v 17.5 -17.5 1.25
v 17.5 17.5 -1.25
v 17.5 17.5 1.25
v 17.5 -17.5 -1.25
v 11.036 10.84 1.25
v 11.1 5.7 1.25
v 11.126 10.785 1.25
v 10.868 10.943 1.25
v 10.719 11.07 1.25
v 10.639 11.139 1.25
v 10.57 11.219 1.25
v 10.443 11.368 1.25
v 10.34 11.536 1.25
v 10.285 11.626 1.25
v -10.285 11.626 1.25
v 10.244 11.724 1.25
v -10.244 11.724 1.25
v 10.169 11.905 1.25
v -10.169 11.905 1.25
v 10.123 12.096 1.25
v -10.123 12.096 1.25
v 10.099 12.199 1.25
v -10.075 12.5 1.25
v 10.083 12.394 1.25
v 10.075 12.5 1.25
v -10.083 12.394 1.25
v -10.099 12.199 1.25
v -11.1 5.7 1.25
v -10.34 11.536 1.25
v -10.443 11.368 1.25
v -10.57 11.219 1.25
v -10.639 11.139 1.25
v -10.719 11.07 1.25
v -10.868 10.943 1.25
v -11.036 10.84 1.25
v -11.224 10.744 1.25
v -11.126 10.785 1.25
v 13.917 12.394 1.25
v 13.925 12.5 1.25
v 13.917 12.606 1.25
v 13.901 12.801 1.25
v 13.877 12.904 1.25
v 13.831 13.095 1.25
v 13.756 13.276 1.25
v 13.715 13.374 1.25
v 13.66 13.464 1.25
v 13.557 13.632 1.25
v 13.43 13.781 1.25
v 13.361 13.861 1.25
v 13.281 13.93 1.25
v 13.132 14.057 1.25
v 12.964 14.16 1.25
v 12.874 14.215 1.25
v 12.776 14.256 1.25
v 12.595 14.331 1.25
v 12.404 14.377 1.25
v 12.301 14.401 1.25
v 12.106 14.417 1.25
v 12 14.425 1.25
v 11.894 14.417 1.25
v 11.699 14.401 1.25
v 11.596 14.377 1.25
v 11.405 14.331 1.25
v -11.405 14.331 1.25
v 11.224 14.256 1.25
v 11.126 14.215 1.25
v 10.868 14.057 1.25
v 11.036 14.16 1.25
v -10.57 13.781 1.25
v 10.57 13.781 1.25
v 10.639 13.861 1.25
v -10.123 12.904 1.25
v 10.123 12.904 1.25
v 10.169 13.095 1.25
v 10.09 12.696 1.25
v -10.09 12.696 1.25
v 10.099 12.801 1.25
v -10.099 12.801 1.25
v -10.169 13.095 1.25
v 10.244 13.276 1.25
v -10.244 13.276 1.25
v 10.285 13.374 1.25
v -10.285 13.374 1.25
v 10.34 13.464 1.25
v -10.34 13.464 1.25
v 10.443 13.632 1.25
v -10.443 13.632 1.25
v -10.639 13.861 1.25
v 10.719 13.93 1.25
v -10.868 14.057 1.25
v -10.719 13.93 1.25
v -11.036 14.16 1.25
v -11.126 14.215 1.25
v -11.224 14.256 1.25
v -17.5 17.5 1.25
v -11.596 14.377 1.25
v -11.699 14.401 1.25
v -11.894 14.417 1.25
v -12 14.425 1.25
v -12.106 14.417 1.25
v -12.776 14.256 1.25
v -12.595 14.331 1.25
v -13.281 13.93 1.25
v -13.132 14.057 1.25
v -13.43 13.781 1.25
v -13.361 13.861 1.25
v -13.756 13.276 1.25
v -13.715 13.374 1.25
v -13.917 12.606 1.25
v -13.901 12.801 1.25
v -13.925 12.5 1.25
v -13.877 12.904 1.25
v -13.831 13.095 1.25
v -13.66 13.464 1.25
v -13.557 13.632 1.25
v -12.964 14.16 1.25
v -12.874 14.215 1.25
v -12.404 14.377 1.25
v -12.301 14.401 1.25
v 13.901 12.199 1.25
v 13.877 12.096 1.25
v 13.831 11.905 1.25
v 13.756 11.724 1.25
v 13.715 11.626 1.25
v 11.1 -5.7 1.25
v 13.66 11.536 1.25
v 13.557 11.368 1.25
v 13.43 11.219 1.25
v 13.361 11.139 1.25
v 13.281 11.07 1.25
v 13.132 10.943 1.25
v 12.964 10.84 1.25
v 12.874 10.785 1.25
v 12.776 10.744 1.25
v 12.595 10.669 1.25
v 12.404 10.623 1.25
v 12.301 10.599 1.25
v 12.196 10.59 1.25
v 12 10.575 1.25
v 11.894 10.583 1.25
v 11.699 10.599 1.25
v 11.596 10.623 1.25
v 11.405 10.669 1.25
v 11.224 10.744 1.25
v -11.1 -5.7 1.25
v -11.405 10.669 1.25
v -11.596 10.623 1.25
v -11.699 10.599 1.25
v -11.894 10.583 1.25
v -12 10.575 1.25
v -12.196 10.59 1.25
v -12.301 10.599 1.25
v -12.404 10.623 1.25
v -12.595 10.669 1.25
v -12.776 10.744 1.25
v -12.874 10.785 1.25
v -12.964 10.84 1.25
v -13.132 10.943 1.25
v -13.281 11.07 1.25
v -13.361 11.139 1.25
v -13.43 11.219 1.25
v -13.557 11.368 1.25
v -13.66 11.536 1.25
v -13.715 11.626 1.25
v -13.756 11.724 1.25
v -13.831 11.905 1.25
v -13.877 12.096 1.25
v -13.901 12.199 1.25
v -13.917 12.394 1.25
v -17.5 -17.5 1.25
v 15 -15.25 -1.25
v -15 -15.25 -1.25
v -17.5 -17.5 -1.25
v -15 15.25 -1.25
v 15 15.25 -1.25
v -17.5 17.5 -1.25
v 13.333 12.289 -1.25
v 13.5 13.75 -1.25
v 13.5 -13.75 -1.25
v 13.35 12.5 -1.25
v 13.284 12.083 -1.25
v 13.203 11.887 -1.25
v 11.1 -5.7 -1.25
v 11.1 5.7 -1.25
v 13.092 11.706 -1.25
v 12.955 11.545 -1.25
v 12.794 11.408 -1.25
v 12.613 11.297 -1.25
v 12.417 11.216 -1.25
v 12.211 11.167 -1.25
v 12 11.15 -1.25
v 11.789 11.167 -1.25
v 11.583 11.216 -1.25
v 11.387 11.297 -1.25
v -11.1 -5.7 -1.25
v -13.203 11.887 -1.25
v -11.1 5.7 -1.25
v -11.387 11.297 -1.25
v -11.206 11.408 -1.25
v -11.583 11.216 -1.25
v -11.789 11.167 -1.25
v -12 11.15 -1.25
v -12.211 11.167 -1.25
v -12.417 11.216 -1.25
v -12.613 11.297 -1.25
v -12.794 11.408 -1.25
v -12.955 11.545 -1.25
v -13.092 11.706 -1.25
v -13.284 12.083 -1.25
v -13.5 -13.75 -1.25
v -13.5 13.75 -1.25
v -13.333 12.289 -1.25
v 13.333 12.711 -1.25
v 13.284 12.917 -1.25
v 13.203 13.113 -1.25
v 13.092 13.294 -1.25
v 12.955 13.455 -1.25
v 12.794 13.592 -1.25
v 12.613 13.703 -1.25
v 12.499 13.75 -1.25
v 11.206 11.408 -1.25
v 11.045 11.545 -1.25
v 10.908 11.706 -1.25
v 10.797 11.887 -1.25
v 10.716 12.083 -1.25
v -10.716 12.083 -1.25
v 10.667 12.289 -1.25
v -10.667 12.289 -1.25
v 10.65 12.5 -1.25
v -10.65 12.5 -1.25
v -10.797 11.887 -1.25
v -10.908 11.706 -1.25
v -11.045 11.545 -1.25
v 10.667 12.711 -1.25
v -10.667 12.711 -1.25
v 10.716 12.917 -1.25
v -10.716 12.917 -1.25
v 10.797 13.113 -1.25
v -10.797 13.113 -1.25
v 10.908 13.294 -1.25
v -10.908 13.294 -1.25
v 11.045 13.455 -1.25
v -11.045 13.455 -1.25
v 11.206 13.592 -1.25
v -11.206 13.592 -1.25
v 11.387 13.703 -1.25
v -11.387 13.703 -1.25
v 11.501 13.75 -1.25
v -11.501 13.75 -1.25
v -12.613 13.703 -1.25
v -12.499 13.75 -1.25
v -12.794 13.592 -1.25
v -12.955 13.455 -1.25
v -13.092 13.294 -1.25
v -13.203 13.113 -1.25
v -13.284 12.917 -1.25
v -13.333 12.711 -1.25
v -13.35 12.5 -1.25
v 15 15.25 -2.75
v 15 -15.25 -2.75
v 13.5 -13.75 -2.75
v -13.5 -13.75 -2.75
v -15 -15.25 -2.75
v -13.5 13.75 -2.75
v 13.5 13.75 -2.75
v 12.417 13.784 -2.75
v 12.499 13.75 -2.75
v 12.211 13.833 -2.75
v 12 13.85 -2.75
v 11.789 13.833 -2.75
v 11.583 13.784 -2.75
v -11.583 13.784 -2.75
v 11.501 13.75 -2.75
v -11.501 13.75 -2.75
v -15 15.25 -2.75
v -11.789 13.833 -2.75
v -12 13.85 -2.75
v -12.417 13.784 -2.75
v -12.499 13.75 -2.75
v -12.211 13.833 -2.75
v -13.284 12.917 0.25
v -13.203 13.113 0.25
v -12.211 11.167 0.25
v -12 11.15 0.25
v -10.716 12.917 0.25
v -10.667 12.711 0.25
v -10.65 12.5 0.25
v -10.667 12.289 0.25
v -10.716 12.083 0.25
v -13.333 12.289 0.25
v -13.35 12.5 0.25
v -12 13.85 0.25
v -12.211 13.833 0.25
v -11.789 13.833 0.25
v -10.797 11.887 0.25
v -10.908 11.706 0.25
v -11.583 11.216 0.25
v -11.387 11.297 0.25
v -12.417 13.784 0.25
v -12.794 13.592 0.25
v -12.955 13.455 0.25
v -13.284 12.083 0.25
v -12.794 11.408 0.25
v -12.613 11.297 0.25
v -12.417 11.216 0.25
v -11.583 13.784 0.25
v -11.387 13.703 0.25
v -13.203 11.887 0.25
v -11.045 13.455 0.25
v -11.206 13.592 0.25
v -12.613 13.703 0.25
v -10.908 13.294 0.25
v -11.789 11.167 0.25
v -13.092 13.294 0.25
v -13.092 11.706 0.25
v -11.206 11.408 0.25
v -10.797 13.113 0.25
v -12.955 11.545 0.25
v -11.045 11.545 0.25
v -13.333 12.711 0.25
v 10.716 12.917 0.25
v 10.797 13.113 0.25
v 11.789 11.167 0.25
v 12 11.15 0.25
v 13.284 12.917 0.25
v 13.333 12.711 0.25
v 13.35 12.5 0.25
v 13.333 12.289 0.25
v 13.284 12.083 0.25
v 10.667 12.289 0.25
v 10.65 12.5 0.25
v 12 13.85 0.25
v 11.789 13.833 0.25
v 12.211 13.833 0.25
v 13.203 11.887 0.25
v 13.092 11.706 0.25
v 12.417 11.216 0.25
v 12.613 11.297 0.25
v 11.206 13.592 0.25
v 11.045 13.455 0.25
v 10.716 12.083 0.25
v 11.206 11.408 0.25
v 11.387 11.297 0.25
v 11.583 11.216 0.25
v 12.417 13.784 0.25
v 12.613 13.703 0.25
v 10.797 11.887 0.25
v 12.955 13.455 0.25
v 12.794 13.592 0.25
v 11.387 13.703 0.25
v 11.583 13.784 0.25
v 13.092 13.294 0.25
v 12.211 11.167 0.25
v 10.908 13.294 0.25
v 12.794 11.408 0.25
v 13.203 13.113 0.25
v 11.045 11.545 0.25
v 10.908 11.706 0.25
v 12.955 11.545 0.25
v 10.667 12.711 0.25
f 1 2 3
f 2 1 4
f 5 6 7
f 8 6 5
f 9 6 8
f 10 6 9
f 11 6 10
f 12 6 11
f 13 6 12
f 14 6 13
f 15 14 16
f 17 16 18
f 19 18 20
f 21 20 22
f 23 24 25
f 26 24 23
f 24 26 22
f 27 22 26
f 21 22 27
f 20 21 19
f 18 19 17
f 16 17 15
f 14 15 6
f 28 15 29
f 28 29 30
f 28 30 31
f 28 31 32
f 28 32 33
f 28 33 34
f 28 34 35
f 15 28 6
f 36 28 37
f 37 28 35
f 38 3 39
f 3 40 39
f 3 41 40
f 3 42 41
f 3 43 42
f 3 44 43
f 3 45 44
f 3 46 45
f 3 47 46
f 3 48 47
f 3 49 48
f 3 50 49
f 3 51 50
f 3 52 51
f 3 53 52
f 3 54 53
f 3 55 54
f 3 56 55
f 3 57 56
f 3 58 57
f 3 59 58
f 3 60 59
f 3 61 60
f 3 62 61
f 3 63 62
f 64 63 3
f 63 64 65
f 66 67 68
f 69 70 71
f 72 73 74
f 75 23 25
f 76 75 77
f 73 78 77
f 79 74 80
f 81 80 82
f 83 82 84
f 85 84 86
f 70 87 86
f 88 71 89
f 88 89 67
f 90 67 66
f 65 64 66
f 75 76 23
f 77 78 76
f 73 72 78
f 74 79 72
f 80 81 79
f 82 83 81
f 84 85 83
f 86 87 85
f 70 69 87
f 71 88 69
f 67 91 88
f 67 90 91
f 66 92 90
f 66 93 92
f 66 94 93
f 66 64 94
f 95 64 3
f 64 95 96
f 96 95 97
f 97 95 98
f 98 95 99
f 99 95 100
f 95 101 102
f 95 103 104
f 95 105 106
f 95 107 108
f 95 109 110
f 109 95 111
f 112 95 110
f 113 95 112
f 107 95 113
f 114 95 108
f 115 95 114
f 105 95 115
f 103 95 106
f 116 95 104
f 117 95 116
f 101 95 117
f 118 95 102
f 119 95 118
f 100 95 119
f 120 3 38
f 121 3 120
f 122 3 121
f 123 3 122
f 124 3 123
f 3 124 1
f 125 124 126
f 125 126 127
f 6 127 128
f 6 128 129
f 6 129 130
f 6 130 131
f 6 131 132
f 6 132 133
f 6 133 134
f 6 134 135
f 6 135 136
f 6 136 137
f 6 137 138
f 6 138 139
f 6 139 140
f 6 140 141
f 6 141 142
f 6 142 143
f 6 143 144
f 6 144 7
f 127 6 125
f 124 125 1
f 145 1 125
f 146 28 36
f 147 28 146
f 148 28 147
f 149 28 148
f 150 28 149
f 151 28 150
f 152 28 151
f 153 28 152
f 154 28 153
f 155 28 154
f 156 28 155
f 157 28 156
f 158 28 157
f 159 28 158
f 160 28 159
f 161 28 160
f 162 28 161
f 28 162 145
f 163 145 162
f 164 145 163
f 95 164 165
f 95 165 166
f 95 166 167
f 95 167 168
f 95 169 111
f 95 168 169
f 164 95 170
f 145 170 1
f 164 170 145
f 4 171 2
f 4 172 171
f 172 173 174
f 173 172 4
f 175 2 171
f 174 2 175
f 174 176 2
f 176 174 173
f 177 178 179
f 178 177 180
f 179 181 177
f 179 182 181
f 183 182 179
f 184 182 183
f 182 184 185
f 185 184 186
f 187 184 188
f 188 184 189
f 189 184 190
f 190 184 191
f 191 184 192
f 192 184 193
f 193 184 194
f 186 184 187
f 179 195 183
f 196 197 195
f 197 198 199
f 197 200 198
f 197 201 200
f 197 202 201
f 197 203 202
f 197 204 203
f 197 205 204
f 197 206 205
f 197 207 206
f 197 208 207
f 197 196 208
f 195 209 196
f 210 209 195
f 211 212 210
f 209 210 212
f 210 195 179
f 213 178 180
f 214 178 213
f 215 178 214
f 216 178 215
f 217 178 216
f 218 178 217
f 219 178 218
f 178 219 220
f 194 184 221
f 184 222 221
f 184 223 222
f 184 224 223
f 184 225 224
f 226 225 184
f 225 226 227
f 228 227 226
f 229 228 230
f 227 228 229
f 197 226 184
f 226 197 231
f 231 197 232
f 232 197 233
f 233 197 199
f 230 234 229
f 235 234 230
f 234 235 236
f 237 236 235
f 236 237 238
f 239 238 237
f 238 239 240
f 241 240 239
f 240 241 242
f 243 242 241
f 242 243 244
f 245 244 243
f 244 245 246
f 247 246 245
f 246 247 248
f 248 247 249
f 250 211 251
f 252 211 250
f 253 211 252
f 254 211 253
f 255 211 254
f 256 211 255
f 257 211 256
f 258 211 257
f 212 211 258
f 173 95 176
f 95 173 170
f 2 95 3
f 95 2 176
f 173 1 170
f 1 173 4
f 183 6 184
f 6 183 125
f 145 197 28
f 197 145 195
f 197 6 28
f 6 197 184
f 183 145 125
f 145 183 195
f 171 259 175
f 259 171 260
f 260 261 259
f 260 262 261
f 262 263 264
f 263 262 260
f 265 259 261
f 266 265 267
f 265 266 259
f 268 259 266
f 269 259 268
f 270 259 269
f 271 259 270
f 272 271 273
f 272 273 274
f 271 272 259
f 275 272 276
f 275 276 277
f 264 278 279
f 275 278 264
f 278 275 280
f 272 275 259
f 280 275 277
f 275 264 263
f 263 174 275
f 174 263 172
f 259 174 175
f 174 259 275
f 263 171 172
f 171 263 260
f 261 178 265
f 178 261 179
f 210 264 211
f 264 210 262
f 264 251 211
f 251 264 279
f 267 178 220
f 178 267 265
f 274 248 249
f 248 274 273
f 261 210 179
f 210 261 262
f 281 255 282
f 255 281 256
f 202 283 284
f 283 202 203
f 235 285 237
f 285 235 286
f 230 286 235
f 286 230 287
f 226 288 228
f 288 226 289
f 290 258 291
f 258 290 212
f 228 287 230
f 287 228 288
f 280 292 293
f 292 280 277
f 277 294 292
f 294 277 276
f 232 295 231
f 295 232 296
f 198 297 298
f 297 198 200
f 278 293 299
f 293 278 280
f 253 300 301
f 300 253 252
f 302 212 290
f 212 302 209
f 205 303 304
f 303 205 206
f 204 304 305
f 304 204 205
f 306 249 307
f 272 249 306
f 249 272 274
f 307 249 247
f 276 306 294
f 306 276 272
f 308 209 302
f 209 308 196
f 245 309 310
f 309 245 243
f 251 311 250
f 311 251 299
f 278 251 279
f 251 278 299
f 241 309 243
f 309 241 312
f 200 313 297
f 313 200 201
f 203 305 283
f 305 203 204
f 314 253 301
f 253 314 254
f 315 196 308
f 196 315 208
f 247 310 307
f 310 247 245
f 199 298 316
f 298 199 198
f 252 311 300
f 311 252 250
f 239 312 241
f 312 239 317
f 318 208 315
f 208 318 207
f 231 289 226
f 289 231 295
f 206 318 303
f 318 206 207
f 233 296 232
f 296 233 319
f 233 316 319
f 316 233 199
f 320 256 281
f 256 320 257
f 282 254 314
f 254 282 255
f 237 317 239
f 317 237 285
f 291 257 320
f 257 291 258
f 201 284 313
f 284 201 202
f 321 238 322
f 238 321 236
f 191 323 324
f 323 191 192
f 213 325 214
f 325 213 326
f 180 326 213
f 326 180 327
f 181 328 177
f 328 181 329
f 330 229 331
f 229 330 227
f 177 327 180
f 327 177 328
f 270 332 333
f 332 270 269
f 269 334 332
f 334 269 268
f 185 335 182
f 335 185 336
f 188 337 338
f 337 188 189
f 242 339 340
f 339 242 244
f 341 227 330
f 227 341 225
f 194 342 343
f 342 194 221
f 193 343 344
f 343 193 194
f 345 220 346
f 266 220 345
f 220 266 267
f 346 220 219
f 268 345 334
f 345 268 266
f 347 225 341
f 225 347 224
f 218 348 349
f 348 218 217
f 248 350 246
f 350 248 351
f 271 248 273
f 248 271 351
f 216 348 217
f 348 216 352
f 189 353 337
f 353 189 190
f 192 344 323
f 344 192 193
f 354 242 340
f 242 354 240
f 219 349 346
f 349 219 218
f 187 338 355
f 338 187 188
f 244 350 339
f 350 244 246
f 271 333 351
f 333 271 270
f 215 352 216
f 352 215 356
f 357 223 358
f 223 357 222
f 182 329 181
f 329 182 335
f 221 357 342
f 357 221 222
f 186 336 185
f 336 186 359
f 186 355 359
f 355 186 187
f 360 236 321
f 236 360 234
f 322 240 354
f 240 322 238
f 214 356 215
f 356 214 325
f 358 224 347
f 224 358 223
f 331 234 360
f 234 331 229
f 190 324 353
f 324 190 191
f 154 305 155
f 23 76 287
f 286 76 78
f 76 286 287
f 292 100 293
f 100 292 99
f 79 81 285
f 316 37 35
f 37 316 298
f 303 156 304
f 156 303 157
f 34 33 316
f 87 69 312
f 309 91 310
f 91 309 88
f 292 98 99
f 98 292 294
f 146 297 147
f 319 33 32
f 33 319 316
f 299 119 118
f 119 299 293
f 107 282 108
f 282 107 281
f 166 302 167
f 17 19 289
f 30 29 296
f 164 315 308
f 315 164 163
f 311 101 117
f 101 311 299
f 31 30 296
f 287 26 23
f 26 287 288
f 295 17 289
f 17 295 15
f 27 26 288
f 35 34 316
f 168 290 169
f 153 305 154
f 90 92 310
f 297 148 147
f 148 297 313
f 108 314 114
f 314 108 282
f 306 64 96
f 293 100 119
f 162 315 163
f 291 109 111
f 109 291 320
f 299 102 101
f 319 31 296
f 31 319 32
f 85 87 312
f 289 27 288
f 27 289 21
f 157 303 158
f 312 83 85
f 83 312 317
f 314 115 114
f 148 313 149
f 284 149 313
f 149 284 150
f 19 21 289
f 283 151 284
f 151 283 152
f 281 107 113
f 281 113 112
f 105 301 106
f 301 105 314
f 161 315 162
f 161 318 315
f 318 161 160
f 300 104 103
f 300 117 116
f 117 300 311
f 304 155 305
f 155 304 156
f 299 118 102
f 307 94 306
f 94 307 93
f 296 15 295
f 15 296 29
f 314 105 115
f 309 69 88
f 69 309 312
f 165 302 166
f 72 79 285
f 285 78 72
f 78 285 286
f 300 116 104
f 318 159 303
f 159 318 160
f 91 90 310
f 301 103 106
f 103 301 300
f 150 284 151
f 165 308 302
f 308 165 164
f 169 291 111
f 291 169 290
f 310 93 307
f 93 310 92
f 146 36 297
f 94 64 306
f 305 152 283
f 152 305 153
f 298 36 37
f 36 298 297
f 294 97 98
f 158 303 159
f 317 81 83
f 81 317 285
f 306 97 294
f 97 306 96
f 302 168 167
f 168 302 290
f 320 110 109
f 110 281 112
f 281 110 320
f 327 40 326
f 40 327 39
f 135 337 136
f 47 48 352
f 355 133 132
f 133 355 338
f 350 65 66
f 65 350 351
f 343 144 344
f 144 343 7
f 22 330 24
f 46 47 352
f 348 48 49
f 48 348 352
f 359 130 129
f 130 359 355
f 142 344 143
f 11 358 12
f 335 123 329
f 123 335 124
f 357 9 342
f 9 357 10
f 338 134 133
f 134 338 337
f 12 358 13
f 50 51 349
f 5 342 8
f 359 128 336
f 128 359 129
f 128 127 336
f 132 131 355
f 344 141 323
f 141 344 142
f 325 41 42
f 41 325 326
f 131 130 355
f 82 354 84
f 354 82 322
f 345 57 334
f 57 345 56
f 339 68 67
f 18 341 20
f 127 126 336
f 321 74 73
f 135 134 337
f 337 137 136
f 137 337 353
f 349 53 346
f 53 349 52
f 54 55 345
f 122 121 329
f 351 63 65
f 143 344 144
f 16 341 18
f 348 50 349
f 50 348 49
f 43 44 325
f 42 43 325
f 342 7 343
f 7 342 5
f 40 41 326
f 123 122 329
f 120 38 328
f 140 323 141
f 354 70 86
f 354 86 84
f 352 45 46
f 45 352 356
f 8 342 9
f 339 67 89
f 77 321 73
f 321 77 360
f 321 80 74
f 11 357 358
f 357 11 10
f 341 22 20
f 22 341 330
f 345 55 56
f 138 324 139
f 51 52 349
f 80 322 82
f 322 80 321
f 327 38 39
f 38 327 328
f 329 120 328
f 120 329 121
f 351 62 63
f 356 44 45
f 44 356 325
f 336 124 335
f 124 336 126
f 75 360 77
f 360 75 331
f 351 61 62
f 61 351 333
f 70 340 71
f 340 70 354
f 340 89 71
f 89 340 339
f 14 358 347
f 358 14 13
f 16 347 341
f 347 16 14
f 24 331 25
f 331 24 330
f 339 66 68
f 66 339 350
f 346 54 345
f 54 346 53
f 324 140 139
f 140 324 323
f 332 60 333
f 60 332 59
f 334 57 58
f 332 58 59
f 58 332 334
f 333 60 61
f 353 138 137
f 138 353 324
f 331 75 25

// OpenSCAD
// ShopVac Rat Trap - OLED Display Bezel
// Adafruit 326 OLED (27×27.5mm PCB, 21.7×10.9mm display area)

$fn = 40;

// Component dimensions (Adafruit 326)
display_area_width = 21.7;
display_area_height = 10.9;
pcb_width = 27;
pcb_height = 27.5;

// Bezel dimensions
bezel_width = 35;
bezel_height = 35;
bezel_thickness = 2.5;
bezel_lip = 1.5;  // Lip to hold display in place

// Mounting
mount_hole_diameter = 2.7;  // M2.5
mount_hole_spacing_x = 24;  // 2 holes, centered

module display_bezel() {
    difference() {
        union() {
            // Front bezel frame
            difference() {
                cube([bezel_width, bezel_height, bezel_thickness], center=true);

                // Display window cutout
                cube([display_area_width + 0.5,
                      display_area_height + 0.5,
                      bezel_thickness + 2], center=true);
            }

            // Rear retention lip (holds PCB)
            translate([0, 0, -bezel_thickness/2 - bezel_lip/2])
                difference() {
                    cube([pcb_width + 3, pcb_height + 3, bezel_lip], center=true);
                    cube([pcb_width, pcb_height, bezel_lip + 2], center=true);
                }
        }

        // Mounting holes for M2.5 screws (2 holes)
        for (x = [-mount_hole_spacing_x/2, mount_hole_spacing_x/2]) {
            translate([x, bezel_height/2 - 5, 0])
                cylinder(d=mount_hole_diameter,
                        h=bezel_thickness + bezel_lip + 2,
                        center=true);
        }

        // Countersink for screw heads
        for (x = [-mount_hole_spacing_x/2, mount_hole_spacing_x/2]) {
            translate([x, bezel_height/2 - 5, bezel_thickness/2 - 1])
                cylinder(d1=mount_hole_diameter,
                        d2=5,
                        h=2);
        }
    }
}

// Assembly call
display_bezel();
